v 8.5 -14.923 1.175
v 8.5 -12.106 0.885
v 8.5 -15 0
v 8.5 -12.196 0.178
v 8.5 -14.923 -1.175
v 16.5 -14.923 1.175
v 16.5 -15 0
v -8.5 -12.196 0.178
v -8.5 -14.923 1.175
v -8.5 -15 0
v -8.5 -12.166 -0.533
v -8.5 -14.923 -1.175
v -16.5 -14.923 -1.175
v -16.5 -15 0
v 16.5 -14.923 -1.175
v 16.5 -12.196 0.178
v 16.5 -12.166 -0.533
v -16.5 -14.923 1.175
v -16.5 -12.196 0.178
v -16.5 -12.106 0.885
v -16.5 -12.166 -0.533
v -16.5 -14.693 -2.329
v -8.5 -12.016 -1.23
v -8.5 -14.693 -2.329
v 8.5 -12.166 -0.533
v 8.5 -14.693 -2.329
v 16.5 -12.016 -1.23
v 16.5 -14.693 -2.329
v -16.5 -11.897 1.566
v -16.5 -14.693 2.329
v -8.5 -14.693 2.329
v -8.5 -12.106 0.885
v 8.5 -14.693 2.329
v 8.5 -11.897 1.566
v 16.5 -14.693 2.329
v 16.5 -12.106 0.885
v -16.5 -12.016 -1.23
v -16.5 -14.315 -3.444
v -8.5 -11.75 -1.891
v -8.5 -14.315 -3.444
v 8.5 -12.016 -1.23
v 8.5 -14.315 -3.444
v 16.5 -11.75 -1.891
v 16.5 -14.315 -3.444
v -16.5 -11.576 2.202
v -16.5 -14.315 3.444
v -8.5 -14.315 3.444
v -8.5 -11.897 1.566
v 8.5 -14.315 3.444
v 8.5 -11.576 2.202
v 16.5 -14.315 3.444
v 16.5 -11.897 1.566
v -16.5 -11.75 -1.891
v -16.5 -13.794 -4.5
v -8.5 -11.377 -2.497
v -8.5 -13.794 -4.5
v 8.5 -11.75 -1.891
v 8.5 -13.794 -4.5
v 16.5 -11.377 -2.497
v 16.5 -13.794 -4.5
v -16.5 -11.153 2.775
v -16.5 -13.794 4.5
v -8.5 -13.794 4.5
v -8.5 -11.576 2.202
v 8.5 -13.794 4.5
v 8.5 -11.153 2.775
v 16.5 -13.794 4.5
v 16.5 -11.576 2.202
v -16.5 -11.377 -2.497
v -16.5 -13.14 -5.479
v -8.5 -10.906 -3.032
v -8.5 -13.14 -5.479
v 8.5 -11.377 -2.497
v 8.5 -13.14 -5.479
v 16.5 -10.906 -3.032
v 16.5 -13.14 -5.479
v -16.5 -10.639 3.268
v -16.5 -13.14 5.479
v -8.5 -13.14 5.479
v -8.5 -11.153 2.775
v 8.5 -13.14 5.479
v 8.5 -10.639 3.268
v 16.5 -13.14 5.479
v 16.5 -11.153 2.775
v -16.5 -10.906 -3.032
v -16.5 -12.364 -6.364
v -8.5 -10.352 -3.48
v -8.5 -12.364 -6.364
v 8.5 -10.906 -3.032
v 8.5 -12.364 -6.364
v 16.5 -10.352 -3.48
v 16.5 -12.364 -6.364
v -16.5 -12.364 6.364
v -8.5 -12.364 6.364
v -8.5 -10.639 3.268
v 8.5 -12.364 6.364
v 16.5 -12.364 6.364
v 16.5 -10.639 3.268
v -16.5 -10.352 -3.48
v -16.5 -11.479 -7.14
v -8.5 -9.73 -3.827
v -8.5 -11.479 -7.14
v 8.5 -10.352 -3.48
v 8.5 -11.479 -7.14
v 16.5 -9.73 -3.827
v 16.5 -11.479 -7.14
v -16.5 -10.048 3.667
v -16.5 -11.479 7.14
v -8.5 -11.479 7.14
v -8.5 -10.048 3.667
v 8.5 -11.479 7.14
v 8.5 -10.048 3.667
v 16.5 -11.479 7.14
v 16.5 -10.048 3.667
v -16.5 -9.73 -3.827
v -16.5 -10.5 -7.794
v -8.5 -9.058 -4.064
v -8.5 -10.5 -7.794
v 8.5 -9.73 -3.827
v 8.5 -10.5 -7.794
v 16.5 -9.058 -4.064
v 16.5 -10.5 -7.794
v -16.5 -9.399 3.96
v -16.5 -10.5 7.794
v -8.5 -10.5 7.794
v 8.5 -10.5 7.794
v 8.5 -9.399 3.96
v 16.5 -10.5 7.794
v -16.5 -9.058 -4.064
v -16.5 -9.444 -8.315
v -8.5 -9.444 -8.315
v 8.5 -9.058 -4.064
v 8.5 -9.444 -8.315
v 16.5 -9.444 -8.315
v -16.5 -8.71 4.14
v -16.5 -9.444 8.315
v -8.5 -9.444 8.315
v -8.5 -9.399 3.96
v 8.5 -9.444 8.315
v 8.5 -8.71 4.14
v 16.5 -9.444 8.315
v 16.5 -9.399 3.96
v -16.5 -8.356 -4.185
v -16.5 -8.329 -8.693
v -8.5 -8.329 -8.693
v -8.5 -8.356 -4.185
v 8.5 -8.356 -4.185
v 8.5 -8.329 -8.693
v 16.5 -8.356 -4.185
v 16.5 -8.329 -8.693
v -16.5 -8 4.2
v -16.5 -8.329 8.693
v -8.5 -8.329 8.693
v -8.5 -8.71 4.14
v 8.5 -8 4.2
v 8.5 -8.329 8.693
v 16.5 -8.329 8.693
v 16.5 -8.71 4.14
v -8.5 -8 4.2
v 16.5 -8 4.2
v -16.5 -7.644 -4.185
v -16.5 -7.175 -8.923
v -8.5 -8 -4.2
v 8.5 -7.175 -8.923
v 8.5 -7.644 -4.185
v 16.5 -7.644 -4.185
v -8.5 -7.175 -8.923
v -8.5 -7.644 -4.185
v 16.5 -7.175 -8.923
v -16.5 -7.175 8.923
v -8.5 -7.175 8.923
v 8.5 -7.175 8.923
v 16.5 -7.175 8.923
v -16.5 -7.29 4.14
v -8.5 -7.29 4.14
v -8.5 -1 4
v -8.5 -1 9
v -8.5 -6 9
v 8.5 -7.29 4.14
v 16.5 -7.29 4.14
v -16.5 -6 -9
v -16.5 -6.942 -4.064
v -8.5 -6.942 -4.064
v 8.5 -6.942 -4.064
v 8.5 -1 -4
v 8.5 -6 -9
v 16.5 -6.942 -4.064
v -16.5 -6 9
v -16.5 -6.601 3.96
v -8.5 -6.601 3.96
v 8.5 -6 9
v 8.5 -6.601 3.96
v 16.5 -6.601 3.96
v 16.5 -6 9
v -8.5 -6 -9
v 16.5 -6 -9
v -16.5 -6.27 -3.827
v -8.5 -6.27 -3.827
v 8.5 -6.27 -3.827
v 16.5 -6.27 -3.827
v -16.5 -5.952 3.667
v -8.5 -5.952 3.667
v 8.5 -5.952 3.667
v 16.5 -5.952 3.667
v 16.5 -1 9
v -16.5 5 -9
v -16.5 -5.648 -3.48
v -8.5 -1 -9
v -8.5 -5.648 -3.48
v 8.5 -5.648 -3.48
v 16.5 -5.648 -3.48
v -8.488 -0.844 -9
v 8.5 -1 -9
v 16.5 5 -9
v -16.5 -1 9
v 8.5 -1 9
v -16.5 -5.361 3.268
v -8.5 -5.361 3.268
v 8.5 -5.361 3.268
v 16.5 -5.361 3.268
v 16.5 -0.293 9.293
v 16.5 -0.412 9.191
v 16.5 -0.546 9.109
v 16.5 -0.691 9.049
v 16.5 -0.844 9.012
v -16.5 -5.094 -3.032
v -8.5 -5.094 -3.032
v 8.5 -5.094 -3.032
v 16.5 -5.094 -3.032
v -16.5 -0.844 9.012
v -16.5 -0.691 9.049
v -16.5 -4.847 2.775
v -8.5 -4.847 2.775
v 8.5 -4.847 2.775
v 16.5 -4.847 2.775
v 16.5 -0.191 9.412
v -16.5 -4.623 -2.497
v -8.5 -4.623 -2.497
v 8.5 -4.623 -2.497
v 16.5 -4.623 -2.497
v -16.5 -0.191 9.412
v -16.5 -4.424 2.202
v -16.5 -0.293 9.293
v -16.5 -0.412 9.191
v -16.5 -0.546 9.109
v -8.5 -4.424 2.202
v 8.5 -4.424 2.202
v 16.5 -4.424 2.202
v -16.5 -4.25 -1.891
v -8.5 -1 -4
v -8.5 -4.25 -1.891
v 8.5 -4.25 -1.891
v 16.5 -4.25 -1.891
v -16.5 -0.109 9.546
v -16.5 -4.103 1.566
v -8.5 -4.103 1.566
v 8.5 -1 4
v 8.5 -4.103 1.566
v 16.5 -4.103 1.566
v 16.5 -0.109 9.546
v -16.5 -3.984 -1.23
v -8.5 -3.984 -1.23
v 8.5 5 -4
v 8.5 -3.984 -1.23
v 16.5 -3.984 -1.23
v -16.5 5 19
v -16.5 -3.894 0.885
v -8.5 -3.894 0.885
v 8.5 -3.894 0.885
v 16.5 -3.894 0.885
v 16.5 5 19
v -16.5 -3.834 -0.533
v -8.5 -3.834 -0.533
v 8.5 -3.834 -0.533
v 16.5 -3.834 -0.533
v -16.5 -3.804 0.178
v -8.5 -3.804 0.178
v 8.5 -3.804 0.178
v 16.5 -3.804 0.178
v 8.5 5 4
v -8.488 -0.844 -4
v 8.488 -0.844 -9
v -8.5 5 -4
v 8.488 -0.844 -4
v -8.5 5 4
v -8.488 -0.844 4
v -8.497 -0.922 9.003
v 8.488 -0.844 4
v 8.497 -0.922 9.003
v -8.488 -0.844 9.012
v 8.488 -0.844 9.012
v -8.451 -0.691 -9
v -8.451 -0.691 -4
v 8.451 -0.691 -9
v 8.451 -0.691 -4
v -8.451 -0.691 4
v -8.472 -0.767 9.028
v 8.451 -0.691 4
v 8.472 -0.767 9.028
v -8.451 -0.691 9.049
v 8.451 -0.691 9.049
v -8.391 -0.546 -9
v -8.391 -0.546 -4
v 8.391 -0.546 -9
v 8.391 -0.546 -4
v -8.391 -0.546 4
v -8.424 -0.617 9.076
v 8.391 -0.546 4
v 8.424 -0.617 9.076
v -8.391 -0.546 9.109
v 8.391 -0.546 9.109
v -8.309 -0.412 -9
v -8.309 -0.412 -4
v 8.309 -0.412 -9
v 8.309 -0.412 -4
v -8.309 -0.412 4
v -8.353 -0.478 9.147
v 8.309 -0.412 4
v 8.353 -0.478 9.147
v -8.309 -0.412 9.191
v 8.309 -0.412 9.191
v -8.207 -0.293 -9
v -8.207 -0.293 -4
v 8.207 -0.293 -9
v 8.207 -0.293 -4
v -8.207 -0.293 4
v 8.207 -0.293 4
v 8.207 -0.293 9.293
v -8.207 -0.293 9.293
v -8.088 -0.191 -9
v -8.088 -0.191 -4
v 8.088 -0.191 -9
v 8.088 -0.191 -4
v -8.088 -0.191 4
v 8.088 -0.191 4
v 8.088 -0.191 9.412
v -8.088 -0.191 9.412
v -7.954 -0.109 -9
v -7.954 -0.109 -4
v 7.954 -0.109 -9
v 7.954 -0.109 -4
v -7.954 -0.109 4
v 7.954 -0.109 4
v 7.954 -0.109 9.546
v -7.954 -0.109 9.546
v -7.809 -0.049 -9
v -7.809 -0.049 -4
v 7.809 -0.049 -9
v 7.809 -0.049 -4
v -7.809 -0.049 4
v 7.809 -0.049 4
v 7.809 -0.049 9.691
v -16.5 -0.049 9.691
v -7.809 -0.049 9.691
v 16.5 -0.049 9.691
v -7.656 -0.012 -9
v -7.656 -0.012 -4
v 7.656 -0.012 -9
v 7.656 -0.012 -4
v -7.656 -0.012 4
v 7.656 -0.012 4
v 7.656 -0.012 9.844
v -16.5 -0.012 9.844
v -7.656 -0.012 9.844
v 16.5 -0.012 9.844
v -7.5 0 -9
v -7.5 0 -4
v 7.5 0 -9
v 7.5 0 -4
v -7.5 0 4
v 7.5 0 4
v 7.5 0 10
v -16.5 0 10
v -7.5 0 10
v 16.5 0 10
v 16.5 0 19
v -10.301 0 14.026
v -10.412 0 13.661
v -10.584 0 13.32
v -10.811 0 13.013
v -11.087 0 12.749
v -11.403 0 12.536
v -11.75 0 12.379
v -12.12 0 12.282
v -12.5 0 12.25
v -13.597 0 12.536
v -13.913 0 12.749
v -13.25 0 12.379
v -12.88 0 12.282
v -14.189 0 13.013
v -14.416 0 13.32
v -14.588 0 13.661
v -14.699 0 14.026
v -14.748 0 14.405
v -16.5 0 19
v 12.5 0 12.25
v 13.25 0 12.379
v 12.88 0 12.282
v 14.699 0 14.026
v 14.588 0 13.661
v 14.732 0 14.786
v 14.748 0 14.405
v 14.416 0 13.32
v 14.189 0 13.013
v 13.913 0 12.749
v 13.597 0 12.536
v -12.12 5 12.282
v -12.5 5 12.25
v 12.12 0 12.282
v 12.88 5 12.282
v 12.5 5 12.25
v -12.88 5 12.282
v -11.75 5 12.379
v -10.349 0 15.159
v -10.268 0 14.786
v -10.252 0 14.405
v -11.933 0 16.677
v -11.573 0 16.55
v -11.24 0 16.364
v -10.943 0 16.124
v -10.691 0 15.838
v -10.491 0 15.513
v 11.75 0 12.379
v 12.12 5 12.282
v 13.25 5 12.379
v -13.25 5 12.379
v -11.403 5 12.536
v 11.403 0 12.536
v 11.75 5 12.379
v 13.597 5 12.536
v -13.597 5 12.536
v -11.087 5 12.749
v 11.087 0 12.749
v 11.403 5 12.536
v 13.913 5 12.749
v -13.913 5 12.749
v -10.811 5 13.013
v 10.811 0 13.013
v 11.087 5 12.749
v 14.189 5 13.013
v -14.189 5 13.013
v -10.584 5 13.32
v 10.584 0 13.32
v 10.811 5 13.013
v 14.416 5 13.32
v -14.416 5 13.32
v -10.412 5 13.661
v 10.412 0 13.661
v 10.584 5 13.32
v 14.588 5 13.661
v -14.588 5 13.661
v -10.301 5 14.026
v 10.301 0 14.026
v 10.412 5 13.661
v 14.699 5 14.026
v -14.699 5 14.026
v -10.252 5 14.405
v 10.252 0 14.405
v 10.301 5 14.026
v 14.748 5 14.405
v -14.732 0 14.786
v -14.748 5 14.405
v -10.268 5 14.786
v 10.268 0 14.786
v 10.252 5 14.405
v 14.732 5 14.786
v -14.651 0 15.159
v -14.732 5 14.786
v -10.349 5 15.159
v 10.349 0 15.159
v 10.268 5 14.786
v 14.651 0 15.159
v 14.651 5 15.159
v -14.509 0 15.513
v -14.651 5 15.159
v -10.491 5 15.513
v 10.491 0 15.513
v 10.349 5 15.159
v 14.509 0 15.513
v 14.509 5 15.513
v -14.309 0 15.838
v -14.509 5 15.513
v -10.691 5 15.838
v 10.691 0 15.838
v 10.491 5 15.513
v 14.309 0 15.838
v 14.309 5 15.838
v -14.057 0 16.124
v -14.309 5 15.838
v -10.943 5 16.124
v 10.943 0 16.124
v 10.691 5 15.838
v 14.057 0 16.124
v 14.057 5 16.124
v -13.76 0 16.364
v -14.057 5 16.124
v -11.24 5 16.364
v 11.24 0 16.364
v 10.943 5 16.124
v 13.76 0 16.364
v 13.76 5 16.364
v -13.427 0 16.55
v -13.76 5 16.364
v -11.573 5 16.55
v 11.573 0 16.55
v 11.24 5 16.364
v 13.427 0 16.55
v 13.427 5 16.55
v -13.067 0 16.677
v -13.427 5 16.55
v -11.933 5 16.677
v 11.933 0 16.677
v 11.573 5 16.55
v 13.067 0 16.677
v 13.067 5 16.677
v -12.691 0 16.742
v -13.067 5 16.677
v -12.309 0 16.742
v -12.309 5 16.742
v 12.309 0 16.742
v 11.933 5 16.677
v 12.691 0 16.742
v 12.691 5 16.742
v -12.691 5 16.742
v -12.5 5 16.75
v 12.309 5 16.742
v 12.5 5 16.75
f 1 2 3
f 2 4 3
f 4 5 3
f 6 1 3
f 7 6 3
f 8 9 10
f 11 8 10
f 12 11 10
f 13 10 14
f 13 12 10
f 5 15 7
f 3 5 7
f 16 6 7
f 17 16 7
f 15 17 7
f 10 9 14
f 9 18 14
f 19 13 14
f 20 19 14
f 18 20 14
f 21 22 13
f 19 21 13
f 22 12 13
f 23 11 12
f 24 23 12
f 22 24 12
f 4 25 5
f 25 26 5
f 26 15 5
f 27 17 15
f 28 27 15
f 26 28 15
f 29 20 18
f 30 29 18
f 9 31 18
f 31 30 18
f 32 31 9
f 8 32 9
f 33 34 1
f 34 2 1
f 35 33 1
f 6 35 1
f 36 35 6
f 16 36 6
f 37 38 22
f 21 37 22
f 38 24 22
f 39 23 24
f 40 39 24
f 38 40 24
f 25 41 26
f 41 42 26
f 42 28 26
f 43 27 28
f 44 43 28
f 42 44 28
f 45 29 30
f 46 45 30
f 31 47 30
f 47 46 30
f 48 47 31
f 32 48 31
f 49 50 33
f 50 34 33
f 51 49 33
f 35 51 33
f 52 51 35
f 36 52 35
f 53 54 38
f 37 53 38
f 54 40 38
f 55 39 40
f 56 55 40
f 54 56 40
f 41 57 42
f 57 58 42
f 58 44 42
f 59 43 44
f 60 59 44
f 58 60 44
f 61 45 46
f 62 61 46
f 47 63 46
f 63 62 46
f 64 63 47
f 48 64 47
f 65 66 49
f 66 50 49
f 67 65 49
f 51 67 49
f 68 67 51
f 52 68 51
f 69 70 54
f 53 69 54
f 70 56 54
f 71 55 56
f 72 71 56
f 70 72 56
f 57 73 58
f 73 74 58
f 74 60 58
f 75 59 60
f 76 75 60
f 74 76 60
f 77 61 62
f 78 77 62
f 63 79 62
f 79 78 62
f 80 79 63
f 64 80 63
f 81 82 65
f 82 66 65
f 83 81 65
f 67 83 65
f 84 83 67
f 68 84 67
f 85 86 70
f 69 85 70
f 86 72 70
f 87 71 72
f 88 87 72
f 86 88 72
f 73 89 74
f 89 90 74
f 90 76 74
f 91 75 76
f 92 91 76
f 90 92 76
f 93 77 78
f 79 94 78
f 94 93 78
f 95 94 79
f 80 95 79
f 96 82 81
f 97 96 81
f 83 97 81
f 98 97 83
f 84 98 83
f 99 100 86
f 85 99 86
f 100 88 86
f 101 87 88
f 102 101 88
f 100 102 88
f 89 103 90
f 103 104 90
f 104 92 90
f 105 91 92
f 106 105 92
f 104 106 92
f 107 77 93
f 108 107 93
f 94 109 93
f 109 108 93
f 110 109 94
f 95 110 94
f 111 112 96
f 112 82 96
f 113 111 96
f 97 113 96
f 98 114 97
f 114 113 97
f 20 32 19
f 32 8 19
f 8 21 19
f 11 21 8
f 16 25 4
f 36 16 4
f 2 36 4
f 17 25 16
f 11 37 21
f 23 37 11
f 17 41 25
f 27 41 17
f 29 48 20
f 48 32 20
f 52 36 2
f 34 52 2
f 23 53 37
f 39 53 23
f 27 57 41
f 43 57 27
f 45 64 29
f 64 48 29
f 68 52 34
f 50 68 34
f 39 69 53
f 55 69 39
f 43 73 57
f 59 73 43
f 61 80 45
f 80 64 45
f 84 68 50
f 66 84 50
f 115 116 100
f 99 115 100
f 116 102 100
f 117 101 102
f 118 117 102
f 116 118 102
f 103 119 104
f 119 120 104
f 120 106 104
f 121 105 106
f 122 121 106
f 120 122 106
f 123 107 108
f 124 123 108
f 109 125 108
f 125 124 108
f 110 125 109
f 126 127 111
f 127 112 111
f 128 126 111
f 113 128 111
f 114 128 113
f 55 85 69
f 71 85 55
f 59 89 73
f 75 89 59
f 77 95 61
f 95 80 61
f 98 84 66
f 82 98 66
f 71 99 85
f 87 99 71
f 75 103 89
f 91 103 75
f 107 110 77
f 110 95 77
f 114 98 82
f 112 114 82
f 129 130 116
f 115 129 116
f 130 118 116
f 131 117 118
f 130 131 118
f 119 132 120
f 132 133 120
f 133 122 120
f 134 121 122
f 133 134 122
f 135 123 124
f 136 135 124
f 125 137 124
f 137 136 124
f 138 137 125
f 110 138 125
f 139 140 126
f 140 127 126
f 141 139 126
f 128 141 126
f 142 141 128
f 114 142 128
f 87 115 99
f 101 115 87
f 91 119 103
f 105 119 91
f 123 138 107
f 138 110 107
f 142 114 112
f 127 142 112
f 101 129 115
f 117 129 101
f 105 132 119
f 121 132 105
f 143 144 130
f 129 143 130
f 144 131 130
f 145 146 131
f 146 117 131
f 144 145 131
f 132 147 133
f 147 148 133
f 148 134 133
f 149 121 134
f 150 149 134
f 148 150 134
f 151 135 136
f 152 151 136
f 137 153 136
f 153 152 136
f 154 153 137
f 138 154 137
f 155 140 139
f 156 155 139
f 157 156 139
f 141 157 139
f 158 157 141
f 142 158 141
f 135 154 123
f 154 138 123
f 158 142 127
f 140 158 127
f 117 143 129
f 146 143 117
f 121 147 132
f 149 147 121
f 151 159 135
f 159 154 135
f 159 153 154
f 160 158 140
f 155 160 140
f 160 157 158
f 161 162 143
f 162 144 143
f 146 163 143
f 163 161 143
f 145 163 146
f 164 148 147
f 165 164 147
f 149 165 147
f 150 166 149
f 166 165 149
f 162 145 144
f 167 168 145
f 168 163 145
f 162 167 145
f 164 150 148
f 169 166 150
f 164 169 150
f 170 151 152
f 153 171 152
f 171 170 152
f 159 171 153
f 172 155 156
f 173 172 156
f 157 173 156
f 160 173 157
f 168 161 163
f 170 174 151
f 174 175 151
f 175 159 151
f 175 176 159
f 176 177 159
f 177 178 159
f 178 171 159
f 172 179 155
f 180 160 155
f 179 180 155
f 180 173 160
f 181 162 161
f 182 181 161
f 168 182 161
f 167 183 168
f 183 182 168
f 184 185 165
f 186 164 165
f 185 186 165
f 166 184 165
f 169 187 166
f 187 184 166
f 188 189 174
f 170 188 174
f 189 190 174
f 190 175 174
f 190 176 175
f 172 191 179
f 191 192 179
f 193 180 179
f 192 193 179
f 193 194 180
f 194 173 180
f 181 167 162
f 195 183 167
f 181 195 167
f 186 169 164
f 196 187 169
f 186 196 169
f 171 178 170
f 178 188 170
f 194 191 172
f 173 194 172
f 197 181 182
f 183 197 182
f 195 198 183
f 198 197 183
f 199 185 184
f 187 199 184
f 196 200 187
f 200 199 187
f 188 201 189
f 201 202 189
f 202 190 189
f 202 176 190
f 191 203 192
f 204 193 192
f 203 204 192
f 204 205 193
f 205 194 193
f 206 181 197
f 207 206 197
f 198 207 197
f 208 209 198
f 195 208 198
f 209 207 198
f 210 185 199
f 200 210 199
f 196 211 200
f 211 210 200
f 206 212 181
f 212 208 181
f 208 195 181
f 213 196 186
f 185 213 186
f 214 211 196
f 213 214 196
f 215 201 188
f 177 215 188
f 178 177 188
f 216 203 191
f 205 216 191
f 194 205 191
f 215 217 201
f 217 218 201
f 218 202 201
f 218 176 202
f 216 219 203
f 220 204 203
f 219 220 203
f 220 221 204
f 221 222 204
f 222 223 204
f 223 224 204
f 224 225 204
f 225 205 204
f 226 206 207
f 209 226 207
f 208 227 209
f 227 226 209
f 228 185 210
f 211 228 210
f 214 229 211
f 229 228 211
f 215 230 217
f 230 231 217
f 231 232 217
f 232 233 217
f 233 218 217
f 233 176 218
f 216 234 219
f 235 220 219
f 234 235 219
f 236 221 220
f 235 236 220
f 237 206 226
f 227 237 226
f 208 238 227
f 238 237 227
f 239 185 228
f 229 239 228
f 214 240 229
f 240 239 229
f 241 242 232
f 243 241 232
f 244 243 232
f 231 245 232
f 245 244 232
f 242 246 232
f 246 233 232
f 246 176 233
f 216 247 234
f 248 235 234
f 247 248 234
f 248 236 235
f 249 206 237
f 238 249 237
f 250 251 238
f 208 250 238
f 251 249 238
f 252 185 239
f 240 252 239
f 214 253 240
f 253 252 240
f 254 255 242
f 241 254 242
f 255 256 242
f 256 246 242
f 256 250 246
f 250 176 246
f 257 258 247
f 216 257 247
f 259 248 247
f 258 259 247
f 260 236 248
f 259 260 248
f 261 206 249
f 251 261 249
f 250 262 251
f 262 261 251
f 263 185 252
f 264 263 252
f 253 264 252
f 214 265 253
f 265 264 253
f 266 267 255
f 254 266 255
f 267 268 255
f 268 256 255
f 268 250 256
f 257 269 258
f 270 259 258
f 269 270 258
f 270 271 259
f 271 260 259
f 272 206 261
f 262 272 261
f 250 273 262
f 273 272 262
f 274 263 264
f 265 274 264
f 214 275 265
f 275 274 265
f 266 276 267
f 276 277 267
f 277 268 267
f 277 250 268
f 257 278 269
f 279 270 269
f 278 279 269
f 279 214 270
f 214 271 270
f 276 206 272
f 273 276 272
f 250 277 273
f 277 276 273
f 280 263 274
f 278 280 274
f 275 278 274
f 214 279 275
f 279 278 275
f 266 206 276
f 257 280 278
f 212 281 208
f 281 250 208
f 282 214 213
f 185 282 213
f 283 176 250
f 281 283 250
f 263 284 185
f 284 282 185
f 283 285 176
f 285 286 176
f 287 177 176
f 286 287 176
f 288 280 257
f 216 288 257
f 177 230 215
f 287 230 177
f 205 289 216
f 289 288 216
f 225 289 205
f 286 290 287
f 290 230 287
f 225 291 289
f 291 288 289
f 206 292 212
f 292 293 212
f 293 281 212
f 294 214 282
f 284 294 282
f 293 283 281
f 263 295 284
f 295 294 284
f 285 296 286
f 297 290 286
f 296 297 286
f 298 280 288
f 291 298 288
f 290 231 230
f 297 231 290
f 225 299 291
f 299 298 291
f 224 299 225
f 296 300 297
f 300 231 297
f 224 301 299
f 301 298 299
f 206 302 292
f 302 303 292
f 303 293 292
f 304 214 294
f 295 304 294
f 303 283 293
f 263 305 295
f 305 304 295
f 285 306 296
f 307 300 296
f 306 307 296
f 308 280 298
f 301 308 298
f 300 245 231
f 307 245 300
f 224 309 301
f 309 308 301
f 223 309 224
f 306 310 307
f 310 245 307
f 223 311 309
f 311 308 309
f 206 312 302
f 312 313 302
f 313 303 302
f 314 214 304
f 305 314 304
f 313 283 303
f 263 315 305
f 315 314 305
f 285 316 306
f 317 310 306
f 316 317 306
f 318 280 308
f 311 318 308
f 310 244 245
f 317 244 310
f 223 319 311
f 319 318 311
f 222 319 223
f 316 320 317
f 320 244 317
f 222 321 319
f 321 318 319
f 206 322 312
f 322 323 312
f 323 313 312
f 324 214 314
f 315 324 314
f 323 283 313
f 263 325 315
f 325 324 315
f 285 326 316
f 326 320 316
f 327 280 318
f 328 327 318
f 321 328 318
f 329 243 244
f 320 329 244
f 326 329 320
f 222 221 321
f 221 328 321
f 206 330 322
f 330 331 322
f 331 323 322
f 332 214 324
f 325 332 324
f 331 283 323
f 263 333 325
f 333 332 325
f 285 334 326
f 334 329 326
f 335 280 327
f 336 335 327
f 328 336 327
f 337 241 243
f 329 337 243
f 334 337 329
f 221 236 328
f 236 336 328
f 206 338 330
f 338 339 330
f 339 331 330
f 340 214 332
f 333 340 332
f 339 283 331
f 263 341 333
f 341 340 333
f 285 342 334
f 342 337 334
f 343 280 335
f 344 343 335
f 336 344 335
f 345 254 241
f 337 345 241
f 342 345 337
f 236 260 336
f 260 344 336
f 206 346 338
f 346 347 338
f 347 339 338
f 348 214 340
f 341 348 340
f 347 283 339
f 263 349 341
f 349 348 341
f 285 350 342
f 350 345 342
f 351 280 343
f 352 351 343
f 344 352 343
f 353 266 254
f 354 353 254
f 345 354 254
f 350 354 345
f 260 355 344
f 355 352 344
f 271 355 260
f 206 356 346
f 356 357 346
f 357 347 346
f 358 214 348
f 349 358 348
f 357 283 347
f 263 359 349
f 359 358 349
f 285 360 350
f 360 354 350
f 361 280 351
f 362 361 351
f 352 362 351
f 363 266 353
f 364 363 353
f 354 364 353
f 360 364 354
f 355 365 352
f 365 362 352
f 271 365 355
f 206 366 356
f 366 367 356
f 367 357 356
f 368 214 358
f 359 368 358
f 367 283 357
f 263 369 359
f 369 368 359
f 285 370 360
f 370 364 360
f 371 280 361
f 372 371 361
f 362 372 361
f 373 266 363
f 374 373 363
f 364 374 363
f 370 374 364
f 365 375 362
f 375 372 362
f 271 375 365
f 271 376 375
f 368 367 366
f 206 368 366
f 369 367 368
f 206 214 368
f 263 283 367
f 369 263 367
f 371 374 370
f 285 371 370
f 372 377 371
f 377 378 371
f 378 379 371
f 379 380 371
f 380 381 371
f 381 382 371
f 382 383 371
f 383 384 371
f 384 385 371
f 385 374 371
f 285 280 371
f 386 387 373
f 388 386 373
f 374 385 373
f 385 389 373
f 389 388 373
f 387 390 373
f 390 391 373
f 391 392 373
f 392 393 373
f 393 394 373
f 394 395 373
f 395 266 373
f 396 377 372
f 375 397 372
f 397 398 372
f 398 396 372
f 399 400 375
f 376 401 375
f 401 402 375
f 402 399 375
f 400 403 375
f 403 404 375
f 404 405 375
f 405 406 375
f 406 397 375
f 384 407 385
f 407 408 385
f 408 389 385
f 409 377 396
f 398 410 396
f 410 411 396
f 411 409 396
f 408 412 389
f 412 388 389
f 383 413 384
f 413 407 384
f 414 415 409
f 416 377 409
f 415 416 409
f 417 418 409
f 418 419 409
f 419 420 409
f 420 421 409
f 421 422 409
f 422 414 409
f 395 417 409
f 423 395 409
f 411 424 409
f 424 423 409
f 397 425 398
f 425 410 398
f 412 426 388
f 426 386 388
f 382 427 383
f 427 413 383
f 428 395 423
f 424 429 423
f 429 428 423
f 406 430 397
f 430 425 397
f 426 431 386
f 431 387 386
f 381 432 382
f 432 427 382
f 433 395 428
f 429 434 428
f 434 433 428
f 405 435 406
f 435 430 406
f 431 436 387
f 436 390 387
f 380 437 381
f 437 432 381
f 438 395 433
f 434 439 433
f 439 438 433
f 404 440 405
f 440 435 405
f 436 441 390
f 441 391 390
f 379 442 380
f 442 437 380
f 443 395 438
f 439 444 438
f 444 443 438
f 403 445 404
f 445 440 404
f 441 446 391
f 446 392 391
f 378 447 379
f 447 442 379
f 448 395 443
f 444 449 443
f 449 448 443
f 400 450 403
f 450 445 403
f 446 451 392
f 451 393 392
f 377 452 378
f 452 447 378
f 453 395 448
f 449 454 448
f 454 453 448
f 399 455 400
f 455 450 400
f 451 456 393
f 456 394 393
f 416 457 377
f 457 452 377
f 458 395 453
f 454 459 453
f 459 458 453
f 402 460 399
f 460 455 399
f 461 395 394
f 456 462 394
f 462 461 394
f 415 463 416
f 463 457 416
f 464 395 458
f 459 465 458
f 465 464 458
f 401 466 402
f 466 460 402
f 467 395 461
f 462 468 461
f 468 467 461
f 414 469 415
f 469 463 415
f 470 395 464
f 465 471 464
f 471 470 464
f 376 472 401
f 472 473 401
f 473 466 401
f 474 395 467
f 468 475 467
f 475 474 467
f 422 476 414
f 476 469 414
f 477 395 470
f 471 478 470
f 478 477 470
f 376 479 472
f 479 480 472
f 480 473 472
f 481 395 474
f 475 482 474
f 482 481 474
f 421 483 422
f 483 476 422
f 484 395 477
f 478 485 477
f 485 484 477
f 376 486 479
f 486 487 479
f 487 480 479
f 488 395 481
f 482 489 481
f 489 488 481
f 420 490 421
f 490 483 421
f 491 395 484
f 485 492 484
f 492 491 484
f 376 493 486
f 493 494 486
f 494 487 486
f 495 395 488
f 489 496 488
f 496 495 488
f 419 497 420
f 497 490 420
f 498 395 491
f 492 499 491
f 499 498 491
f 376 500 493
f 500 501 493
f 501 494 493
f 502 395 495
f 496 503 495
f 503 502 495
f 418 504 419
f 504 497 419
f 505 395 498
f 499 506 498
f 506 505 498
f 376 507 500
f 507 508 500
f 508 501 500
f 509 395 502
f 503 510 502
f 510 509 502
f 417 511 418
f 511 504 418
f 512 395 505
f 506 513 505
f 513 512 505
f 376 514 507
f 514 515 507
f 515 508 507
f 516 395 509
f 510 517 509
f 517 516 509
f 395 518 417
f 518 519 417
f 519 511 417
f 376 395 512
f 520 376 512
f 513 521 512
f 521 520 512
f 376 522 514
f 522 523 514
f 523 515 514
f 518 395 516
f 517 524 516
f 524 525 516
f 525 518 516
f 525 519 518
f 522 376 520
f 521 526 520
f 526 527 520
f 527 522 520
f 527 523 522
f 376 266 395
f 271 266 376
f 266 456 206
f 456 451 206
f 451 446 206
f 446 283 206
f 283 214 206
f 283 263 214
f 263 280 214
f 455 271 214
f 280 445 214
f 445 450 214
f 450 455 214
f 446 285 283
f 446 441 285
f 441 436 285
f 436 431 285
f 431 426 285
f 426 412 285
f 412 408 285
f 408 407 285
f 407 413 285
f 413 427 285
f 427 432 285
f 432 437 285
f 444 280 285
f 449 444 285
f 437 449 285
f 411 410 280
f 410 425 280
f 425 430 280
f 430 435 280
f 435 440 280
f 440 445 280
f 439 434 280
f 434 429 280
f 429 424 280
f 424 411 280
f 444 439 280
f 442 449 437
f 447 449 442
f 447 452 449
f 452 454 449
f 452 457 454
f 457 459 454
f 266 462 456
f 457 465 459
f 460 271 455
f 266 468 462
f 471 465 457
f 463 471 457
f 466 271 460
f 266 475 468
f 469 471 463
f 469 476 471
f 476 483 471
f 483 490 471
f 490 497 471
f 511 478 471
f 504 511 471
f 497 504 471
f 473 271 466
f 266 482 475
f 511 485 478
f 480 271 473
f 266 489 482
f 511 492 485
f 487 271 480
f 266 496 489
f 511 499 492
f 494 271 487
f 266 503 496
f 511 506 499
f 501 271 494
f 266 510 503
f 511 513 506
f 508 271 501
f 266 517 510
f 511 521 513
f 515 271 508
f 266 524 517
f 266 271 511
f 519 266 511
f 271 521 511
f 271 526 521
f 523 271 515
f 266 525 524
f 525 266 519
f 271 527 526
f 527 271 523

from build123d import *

# Parameters (mm, degrees)
SKETCH_1_W          = 33
SKETCH_1_H          = 28
SKETCH_1_W_2        = 17
SKETCH_1_H_2        = 8
EXTRUDE_1_DEPTH     = 5
SKETCH_2_W          = 8
SKETCH_2_H          = 18
EXTRUDE_2_DEPTH     = 15
SKETCH_3_R          = 4.2
CUT_EXTRUDE_1_DEPTH = 37
FILLET_1_R          = 9
FILLET_2_R          = 1
SKETCH_4_R          = 2.25
CUT_EXTRUDE_2_DEPTH = 37


with BuildPart() as part:
    # 草图1 → 凸台-拉伸1 (new body)
    with BuildSketch(Plane(origin=(0, 0, 0), x_dir=(1, 0, 0), z_dir=(0, 1, 0))):
        with Locations((0, -5)):
            Rectangle(SKETCH_1_W, SKETCH_1_H)
        Rectangle(SKETCH_1_W_2, SKETCH_1_H_2, mode=Mode.SUBTRACT)
    extrude(amount=EXTRUDE_1_DEPTH)

    # 草图2 → 凸台-拉伸2 (add)
    with BuildSketch(Plane.XZ):
        with Locations((-12.5, 0)):
            Rectangle(SKETCH_2_W, SKETCH_2_H)
        with Locations((12.5, 0)):
            Rectangle(SKETCH_2_W, SKETCH_2_H)
    extrude(amount=EXTRUDE_2_DEPTH)

    # 草图3 → 切除-拉伸1 (cut)
    with BuildSketch(Plane.ZY.offset(16.5)):
        with Locations((0, -8)):
            Circle(SKETCH_3_R)
    extrude(amount=-CUT_EXTRUDE_1_DEPTH, mode=Mode.SUBTRACT)

    # 圆角1
    fillet_1_edges = [part.edges().sort_by_distance(p)[0] for p in [
        (12.5, -15, -9),
        (12.5, -15, 9),
        (-12.5, -15, 9),
        (-12.5, -15, -9),
    ]]
    fillet(fillet_1_edges, radius=FILLET_1_R - 0.0001)  # a hair under: the kernel refuses the full size

    # 圆角2
    fillet_2_edges = [part.edges().sort_by_distance(p)[0] for p in [
        (-8.5, 0, 6.5),
        (-8.5, 0, -6.5),
        (-12.5, 0, 9),
        (12.5, 0, 9),
        (8.5, 0, 6.5),
        (8.5, 0, -6.5),
    ]]
    fillet(fillet_2_edges, radius=FILLET_2_R)

    # 草图4 → 切除-拉伸2 (cut)
    with BuildSketch(Plane.XZ):
        with Locations(Location((-12.5, 14.5, 0), (0, 0, 270))):
            Circle(SKETCH_4_R)
        with Locations(Location((12.5, 14.5, 0), (0, 0, 270))):
            Circle(SKETCH_4_R)
    extrude(amount=-CUT_EXTRUDE_2_DEPTH, mode=Mode.SUBTRACT)


solid = part.part
